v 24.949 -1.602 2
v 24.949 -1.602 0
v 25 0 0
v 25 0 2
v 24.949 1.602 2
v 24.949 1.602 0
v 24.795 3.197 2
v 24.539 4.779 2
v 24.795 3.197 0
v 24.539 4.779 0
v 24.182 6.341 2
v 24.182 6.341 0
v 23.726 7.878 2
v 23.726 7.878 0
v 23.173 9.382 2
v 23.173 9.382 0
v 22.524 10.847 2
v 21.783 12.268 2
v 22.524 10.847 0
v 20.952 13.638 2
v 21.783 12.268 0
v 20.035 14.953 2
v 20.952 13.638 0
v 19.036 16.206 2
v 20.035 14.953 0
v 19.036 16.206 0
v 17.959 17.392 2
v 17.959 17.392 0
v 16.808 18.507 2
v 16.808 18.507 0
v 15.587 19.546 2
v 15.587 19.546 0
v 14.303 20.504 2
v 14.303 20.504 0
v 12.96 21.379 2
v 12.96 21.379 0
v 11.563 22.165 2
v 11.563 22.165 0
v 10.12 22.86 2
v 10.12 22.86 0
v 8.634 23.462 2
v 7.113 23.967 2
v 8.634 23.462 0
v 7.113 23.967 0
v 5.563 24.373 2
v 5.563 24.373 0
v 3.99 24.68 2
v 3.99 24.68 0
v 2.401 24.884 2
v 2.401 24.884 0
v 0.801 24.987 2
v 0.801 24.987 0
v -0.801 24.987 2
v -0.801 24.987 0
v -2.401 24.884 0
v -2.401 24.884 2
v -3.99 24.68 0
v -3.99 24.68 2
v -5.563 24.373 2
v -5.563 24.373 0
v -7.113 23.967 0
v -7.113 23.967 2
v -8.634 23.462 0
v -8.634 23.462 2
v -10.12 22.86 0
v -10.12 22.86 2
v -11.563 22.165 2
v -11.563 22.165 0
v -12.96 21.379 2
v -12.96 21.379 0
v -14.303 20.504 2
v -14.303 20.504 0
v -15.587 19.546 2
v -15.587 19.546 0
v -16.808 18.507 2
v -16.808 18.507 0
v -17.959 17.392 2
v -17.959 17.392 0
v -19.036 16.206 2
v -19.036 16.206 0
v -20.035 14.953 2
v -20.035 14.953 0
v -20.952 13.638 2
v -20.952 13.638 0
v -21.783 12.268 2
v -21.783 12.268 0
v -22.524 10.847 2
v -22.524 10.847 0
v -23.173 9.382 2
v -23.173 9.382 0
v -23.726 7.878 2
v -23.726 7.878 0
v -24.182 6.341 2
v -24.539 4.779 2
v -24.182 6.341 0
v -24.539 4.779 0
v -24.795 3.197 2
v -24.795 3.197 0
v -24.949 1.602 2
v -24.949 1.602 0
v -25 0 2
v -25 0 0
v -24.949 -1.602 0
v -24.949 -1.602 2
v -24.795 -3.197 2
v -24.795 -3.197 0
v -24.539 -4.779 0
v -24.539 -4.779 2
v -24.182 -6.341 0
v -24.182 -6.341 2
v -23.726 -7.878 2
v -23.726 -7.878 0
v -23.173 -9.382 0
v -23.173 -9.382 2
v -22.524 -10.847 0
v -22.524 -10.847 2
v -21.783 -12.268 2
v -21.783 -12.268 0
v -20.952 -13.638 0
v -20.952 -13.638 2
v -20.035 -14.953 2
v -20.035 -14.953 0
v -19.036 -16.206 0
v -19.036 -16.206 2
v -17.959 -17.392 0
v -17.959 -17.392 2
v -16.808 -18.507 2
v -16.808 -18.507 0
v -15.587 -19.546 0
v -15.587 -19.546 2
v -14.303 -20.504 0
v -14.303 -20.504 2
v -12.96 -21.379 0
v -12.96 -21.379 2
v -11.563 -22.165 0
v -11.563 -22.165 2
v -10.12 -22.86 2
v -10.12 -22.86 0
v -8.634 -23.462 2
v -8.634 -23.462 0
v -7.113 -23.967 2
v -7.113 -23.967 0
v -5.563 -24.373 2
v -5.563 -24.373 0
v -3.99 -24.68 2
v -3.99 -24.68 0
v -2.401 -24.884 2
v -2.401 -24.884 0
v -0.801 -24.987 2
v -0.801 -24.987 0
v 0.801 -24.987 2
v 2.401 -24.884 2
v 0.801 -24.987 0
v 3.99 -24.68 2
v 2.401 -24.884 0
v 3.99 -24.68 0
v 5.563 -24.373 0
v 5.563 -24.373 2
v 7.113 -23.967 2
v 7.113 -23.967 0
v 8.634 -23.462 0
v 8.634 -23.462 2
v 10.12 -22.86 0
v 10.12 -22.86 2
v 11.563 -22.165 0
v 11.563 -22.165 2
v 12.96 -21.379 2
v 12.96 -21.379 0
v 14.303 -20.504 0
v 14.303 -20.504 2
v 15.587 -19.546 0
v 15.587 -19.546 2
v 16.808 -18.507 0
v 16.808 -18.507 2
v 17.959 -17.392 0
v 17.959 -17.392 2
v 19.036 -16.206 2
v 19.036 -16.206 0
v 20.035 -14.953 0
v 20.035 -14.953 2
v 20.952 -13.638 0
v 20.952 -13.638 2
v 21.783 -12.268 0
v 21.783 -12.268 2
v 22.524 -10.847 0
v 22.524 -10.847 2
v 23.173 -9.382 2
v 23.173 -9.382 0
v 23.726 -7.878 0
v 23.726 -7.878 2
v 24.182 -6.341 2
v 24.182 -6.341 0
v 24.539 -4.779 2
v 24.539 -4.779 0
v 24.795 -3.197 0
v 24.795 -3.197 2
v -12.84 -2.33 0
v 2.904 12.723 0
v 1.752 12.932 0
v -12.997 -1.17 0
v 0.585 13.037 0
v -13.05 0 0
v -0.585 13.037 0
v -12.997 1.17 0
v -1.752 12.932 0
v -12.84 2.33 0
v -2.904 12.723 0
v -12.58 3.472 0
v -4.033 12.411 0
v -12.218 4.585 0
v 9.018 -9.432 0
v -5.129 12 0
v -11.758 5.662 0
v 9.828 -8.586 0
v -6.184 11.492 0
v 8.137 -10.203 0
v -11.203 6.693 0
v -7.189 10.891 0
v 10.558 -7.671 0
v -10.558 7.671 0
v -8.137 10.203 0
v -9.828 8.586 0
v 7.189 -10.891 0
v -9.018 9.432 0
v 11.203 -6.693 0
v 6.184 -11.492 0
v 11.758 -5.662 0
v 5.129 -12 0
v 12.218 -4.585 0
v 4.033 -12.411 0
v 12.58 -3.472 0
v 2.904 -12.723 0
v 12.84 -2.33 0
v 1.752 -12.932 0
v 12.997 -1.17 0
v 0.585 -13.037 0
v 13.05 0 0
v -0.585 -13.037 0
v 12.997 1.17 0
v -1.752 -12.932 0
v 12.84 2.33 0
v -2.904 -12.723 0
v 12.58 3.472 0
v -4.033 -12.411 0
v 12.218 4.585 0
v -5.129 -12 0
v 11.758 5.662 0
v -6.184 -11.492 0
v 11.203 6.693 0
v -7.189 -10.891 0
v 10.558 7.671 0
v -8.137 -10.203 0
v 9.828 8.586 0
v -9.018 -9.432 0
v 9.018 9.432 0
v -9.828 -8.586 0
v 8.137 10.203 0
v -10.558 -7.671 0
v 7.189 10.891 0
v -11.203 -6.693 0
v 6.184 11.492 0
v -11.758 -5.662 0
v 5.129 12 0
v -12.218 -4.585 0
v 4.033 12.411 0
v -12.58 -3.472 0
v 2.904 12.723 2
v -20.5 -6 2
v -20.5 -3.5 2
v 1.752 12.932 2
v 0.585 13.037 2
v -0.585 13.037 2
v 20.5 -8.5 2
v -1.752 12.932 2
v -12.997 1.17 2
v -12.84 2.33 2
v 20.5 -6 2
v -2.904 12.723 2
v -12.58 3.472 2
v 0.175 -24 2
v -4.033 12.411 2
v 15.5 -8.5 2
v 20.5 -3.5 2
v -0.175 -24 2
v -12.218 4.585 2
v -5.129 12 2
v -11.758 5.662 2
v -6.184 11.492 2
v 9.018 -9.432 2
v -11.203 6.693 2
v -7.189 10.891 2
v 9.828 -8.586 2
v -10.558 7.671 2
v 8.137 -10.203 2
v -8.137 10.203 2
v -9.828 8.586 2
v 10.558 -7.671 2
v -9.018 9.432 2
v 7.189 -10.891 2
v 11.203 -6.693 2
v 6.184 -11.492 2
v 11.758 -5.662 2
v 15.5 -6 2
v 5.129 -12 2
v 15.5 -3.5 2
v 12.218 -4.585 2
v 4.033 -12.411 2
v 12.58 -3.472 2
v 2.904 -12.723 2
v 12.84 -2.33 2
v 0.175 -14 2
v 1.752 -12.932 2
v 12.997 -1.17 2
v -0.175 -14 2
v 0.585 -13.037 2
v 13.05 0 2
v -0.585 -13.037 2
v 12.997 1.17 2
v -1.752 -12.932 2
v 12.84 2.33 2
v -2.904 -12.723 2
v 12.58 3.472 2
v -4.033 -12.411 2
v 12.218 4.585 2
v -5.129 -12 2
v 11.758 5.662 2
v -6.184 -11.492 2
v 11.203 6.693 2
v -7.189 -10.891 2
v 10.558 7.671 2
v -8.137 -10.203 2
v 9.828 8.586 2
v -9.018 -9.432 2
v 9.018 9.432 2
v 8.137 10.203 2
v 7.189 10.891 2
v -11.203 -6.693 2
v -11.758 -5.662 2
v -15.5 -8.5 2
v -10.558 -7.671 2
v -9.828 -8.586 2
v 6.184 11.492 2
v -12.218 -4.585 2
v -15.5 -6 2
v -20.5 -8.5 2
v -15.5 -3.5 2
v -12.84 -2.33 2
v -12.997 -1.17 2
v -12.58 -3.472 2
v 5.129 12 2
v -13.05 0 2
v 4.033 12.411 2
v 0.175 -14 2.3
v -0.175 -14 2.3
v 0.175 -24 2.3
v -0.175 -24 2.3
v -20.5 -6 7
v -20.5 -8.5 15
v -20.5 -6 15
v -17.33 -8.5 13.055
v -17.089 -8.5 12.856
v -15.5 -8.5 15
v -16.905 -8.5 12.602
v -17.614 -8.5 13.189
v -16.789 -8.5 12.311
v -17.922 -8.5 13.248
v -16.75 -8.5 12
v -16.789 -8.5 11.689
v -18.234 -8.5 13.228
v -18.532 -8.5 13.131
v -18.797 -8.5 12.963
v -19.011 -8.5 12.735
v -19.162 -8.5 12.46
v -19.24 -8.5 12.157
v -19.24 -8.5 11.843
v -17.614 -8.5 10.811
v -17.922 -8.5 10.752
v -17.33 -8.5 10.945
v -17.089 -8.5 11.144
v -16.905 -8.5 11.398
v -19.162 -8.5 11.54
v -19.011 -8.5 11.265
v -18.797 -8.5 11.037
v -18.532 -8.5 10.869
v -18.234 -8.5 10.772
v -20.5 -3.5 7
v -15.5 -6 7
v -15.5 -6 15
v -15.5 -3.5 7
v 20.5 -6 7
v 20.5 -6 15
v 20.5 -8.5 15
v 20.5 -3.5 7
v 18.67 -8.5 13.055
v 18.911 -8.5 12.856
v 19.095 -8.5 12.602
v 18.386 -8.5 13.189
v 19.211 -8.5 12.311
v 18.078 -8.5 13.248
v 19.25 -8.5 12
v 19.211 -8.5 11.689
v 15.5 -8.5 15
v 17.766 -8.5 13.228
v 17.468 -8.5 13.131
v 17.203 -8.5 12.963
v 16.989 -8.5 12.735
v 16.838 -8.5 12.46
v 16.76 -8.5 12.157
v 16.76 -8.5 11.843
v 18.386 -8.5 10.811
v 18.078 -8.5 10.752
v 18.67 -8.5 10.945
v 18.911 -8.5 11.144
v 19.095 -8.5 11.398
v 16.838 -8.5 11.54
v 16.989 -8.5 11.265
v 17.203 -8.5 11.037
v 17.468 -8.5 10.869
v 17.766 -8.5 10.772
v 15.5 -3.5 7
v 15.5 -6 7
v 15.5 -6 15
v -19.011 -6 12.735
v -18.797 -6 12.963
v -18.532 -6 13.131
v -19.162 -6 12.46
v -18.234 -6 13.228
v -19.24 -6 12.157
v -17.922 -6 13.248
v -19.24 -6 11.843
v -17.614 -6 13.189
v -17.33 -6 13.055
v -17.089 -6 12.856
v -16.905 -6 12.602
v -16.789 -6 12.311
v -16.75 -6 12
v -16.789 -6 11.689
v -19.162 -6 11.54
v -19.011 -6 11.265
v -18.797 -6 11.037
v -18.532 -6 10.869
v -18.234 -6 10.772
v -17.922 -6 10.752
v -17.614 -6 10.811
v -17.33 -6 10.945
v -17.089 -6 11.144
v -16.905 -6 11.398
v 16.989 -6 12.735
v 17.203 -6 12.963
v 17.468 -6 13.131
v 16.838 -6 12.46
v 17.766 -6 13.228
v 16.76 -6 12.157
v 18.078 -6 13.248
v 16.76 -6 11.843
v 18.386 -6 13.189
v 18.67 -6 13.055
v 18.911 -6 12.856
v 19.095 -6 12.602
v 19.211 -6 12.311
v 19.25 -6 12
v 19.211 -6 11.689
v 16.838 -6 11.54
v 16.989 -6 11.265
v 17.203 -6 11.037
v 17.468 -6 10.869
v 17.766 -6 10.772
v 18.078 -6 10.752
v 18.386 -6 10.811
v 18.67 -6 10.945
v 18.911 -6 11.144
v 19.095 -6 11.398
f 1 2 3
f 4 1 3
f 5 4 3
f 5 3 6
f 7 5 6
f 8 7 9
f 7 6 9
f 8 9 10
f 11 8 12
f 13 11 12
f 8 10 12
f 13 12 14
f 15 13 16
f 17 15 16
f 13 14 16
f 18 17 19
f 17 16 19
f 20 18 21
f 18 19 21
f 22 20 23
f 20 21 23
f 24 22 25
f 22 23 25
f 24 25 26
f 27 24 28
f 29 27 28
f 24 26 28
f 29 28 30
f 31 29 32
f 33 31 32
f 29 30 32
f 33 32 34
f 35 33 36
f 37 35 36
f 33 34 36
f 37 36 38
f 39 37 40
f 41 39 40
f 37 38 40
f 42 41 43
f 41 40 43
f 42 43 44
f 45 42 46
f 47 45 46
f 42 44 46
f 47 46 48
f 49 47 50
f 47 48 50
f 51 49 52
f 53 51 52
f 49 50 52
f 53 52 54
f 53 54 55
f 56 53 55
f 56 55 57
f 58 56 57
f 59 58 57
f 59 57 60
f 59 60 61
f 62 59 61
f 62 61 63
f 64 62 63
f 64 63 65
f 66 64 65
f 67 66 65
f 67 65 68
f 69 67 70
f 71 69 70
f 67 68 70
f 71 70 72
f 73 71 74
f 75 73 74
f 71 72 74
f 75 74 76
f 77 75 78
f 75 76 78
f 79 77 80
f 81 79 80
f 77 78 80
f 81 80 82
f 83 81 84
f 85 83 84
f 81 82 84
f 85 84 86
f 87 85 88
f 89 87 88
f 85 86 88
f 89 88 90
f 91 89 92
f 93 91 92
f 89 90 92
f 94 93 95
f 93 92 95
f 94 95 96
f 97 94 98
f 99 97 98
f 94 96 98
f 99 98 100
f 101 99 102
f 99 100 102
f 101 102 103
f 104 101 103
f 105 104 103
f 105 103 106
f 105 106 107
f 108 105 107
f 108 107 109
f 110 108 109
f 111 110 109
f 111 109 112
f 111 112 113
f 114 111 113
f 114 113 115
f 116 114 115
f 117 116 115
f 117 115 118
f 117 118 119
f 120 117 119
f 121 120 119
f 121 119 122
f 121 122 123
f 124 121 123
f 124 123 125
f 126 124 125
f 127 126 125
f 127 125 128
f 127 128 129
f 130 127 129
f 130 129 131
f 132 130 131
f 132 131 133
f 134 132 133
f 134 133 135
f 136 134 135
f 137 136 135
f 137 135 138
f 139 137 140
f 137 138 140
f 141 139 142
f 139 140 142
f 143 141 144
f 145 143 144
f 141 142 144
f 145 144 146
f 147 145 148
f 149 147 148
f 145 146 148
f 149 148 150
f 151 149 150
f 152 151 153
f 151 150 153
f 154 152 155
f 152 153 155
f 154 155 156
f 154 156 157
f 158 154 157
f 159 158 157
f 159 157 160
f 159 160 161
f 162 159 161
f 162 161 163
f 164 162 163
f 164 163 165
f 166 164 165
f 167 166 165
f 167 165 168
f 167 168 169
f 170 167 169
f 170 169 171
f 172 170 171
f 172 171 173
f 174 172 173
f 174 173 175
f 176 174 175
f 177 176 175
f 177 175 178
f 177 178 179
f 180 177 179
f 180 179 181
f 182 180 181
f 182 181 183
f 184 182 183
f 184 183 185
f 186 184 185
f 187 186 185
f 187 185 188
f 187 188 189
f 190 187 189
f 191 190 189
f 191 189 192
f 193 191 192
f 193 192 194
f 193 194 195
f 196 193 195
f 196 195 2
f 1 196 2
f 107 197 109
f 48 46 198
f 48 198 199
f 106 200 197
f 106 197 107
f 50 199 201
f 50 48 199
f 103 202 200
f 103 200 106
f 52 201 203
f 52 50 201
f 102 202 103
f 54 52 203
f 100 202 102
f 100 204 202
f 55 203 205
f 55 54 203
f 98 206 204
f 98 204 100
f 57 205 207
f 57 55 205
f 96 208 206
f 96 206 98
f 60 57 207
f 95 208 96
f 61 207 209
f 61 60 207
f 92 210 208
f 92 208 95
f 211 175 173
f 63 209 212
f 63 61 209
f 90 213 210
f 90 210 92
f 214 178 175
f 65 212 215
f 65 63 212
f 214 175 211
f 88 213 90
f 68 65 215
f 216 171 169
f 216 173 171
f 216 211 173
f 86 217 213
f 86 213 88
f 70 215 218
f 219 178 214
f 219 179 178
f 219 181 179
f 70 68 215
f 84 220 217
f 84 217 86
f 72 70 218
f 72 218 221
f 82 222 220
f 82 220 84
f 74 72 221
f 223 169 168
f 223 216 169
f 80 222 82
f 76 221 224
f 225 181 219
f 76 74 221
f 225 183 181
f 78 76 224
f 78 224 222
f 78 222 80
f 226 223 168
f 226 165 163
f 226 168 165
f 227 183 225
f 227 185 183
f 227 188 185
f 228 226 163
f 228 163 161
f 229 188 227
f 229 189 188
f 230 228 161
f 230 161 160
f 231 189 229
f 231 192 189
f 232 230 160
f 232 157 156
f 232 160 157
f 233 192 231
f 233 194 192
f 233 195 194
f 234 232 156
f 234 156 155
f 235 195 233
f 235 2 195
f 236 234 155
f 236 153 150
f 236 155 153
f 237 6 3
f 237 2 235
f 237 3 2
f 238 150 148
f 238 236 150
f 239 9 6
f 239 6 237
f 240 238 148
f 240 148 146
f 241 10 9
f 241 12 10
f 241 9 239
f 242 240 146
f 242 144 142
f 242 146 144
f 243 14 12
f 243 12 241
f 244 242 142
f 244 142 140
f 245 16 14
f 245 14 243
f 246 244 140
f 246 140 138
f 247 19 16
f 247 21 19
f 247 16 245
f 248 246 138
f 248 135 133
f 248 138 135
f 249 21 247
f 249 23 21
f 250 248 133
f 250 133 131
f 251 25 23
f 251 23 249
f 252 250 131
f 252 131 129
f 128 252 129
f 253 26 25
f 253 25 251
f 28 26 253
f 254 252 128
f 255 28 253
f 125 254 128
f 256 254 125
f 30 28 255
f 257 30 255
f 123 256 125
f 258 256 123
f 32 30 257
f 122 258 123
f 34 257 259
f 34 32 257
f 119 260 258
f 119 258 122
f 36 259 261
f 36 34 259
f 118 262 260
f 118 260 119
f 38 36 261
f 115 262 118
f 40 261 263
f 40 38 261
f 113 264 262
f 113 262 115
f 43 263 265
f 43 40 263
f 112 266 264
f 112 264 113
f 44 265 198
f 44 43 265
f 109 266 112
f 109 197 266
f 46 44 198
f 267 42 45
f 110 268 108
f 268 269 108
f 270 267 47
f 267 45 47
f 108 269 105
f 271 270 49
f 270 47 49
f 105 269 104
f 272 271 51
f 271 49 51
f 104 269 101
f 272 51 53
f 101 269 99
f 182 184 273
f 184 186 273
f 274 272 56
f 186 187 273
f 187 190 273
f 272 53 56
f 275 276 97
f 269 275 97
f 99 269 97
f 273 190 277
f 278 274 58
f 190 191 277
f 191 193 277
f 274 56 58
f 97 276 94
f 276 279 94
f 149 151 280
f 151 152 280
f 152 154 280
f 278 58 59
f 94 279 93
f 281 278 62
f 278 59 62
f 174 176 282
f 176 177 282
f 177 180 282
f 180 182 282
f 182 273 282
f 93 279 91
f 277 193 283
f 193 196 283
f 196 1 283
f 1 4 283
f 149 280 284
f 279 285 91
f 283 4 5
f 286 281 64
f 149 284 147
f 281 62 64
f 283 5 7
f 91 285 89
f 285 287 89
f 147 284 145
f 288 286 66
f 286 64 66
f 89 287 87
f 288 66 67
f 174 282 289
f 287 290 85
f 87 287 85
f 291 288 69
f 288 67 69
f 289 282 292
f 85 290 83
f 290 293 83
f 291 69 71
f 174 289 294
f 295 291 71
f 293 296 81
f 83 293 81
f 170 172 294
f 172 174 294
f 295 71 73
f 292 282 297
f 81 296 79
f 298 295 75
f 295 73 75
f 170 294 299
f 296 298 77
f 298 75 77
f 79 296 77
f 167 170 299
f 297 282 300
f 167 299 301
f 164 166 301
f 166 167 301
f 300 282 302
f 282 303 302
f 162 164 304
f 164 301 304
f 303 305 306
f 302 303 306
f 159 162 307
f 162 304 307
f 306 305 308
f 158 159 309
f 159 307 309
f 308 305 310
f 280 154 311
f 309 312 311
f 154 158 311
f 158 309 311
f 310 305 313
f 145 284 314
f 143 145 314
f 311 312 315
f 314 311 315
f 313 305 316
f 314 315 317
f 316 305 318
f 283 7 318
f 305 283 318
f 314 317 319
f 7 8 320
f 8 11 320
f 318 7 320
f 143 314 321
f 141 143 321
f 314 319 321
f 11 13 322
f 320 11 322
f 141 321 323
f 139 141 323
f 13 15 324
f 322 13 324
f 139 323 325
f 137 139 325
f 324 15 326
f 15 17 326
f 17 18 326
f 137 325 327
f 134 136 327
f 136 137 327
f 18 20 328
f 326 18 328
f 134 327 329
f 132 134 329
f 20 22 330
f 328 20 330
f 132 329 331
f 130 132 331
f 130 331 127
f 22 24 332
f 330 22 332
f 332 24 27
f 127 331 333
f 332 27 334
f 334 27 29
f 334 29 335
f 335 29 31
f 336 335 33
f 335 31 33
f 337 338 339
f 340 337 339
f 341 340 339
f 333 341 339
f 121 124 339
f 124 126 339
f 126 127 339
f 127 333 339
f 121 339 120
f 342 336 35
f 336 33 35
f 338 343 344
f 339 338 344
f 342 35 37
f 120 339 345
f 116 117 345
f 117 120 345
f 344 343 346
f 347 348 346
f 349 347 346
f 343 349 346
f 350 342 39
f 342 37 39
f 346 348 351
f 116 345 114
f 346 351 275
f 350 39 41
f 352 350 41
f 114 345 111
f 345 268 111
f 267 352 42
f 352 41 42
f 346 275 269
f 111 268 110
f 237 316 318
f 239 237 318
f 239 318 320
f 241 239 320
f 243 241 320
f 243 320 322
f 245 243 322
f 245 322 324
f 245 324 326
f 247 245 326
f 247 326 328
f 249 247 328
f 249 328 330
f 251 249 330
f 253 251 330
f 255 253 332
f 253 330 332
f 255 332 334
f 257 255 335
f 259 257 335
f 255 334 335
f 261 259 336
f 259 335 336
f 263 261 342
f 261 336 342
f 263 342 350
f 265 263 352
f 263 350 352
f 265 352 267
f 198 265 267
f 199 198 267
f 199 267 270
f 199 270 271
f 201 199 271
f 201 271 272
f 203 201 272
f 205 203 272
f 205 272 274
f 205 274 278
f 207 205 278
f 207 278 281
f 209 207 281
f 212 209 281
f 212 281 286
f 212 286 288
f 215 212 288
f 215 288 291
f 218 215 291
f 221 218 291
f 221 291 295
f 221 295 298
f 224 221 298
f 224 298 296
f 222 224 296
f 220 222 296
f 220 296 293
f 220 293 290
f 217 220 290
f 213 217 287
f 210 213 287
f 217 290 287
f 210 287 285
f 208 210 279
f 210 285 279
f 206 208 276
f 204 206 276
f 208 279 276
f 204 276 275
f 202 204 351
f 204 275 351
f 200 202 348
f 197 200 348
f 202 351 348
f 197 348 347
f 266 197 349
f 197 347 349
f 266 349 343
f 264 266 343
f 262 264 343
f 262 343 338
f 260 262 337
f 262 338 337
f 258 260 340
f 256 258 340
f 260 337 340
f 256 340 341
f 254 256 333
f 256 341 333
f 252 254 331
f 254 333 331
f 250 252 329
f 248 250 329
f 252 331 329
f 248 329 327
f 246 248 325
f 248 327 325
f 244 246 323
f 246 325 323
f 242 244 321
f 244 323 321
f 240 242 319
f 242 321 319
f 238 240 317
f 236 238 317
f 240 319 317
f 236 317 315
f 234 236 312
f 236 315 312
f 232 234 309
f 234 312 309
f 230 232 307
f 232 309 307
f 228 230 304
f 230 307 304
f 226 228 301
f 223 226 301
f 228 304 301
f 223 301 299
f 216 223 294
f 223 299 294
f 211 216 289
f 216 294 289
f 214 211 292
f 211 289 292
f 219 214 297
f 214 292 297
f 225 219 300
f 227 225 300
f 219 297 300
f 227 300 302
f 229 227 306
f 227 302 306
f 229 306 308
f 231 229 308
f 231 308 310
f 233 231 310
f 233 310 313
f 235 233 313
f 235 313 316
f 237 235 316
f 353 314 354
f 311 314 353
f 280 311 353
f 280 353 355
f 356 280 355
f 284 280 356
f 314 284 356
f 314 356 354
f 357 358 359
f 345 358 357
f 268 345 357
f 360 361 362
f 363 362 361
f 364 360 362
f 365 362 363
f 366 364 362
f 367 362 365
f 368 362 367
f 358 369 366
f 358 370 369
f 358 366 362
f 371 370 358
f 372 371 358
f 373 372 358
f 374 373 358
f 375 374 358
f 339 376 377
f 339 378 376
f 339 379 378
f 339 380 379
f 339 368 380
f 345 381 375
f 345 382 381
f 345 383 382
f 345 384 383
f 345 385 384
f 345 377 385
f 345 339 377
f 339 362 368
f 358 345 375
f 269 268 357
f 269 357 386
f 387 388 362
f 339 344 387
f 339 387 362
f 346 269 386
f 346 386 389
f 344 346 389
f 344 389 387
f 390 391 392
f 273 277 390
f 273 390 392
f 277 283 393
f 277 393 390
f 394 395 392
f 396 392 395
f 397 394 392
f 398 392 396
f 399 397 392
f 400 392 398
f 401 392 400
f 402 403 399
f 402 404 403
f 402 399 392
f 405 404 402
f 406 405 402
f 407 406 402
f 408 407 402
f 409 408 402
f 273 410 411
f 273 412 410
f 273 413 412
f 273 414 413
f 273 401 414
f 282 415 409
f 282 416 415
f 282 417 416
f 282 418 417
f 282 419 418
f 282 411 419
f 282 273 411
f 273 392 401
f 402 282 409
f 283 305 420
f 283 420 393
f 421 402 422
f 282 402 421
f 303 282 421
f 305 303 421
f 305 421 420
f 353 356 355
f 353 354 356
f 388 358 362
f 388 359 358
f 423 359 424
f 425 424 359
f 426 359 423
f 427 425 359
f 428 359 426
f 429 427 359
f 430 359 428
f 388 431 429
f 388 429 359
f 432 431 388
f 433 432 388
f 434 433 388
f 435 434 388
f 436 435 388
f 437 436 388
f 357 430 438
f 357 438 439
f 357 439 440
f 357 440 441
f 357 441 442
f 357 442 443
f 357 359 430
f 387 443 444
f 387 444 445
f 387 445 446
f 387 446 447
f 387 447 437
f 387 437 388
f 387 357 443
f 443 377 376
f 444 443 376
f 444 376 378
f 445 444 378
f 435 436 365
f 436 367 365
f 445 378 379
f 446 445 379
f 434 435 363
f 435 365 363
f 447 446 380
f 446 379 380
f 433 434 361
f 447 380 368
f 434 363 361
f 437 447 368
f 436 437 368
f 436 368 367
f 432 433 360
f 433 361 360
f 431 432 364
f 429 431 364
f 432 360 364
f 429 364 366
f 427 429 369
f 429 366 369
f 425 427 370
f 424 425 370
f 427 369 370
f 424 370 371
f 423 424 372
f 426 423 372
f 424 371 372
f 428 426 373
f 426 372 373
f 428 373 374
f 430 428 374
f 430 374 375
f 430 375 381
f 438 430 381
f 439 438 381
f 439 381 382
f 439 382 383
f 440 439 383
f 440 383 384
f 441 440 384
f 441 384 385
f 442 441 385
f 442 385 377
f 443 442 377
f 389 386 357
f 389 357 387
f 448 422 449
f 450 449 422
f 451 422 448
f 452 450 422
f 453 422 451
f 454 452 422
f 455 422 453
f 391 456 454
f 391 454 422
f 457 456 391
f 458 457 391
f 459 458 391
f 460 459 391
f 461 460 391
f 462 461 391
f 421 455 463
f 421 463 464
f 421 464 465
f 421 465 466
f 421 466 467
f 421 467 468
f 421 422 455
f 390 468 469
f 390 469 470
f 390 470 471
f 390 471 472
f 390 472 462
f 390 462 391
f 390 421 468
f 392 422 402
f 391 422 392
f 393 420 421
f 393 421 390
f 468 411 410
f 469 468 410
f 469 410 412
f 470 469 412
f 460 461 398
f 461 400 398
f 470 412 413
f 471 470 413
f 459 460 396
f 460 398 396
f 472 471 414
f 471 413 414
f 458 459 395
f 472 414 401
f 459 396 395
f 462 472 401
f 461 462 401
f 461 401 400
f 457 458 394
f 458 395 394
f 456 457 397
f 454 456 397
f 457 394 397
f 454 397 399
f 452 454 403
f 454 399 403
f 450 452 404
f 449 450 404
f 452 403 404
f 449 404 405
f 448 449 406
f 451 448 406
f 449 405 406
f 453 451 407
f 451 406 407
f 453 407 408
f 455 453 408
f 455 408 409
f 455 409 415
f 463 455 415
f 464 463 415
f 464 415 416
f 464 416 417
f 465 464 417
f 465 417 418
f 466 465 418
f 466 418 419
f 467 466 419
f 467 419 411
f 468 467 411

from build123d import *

# Parameters (mm, degrees)
SKETCH_R        = 25
PAD_DEPTH       = 2
SKETCH001_R     = 13.05
POCKET_DEPTH    = 5
SKETCH002_W     = 5
SKETCH002_H     = 2.5
PAD001_DEPTH    = 13
SKETCH003_R     = 1.25
POCKET001_DEPTH = 5
SKETCH004_W     = 5
SKETCH004_H     = 2.5
PAD002_DEPTH    = 5
SKETCH005_W     = 0.35
SKETCH005_H     = 10
PAD003_DEPTH    = 0.3


with BuildPart() as part:
    # Sketch → Pad (new body)
    with BuildSketch(Plane.XY):
        Circle(SKETCH_R)
    extrude(amount=PAD_DEPTH)

    # Sketch001 → Pocket (cut)
    with BuildSketch(Plane.XY.offset(2)):
        Circle(SKETCH001_R)
    extrude(amount=-POCKET_DEPTH, mode=Mode.SUBTRACT)

    # Sketch002 → Pad001 (new body)
    with BuildSketch(Plane.XY.offset(2)):
        with Locations((-18, -7.25)):
            Rectangle(SKETCH002_W, SKETCH002_H)
        with Locations((18, -7.25)):
            Rectangle(SKETCH002_W, SKETCH002_H)
    extrude(amount=PAD001_DEPTH)

    # Sketch003 → Pocket001 (cut)
    with BuildSketch(Plane.XZ.offset(8.5)):
        with Locations((-18, 12)):
            Circle(SKETCH003_R)
        with Locations((18, 12)):
            Circle(SKETCH003_R)
    extrude(amount=-POCKET001_DEPTH, mode=Mode.SUBTRACT)

    # Sketch004 → Pad002 (new body)
    with BuildSketch(Plane.XY.offset(2)):
        with Locations((-18, -4.75)):
            Rectangle(SKETCH004_W, SKETCH004_H)
        with Locations((18, -4.75)):
            Rectangle(SKETCH004_W, SKETCH004_H)
    extrude(amount=PAD002_DEPTH)

    # Sketch005 → Pad003 (new body)
    with BuildSketch(Plane.XY.offset(2)):
        with Locations((0, -19)):
            Rectangle(SKETCH005_W, SKETCH005_H)
    extrude(amount=PAD003_DEPTH)


solid = part.part
